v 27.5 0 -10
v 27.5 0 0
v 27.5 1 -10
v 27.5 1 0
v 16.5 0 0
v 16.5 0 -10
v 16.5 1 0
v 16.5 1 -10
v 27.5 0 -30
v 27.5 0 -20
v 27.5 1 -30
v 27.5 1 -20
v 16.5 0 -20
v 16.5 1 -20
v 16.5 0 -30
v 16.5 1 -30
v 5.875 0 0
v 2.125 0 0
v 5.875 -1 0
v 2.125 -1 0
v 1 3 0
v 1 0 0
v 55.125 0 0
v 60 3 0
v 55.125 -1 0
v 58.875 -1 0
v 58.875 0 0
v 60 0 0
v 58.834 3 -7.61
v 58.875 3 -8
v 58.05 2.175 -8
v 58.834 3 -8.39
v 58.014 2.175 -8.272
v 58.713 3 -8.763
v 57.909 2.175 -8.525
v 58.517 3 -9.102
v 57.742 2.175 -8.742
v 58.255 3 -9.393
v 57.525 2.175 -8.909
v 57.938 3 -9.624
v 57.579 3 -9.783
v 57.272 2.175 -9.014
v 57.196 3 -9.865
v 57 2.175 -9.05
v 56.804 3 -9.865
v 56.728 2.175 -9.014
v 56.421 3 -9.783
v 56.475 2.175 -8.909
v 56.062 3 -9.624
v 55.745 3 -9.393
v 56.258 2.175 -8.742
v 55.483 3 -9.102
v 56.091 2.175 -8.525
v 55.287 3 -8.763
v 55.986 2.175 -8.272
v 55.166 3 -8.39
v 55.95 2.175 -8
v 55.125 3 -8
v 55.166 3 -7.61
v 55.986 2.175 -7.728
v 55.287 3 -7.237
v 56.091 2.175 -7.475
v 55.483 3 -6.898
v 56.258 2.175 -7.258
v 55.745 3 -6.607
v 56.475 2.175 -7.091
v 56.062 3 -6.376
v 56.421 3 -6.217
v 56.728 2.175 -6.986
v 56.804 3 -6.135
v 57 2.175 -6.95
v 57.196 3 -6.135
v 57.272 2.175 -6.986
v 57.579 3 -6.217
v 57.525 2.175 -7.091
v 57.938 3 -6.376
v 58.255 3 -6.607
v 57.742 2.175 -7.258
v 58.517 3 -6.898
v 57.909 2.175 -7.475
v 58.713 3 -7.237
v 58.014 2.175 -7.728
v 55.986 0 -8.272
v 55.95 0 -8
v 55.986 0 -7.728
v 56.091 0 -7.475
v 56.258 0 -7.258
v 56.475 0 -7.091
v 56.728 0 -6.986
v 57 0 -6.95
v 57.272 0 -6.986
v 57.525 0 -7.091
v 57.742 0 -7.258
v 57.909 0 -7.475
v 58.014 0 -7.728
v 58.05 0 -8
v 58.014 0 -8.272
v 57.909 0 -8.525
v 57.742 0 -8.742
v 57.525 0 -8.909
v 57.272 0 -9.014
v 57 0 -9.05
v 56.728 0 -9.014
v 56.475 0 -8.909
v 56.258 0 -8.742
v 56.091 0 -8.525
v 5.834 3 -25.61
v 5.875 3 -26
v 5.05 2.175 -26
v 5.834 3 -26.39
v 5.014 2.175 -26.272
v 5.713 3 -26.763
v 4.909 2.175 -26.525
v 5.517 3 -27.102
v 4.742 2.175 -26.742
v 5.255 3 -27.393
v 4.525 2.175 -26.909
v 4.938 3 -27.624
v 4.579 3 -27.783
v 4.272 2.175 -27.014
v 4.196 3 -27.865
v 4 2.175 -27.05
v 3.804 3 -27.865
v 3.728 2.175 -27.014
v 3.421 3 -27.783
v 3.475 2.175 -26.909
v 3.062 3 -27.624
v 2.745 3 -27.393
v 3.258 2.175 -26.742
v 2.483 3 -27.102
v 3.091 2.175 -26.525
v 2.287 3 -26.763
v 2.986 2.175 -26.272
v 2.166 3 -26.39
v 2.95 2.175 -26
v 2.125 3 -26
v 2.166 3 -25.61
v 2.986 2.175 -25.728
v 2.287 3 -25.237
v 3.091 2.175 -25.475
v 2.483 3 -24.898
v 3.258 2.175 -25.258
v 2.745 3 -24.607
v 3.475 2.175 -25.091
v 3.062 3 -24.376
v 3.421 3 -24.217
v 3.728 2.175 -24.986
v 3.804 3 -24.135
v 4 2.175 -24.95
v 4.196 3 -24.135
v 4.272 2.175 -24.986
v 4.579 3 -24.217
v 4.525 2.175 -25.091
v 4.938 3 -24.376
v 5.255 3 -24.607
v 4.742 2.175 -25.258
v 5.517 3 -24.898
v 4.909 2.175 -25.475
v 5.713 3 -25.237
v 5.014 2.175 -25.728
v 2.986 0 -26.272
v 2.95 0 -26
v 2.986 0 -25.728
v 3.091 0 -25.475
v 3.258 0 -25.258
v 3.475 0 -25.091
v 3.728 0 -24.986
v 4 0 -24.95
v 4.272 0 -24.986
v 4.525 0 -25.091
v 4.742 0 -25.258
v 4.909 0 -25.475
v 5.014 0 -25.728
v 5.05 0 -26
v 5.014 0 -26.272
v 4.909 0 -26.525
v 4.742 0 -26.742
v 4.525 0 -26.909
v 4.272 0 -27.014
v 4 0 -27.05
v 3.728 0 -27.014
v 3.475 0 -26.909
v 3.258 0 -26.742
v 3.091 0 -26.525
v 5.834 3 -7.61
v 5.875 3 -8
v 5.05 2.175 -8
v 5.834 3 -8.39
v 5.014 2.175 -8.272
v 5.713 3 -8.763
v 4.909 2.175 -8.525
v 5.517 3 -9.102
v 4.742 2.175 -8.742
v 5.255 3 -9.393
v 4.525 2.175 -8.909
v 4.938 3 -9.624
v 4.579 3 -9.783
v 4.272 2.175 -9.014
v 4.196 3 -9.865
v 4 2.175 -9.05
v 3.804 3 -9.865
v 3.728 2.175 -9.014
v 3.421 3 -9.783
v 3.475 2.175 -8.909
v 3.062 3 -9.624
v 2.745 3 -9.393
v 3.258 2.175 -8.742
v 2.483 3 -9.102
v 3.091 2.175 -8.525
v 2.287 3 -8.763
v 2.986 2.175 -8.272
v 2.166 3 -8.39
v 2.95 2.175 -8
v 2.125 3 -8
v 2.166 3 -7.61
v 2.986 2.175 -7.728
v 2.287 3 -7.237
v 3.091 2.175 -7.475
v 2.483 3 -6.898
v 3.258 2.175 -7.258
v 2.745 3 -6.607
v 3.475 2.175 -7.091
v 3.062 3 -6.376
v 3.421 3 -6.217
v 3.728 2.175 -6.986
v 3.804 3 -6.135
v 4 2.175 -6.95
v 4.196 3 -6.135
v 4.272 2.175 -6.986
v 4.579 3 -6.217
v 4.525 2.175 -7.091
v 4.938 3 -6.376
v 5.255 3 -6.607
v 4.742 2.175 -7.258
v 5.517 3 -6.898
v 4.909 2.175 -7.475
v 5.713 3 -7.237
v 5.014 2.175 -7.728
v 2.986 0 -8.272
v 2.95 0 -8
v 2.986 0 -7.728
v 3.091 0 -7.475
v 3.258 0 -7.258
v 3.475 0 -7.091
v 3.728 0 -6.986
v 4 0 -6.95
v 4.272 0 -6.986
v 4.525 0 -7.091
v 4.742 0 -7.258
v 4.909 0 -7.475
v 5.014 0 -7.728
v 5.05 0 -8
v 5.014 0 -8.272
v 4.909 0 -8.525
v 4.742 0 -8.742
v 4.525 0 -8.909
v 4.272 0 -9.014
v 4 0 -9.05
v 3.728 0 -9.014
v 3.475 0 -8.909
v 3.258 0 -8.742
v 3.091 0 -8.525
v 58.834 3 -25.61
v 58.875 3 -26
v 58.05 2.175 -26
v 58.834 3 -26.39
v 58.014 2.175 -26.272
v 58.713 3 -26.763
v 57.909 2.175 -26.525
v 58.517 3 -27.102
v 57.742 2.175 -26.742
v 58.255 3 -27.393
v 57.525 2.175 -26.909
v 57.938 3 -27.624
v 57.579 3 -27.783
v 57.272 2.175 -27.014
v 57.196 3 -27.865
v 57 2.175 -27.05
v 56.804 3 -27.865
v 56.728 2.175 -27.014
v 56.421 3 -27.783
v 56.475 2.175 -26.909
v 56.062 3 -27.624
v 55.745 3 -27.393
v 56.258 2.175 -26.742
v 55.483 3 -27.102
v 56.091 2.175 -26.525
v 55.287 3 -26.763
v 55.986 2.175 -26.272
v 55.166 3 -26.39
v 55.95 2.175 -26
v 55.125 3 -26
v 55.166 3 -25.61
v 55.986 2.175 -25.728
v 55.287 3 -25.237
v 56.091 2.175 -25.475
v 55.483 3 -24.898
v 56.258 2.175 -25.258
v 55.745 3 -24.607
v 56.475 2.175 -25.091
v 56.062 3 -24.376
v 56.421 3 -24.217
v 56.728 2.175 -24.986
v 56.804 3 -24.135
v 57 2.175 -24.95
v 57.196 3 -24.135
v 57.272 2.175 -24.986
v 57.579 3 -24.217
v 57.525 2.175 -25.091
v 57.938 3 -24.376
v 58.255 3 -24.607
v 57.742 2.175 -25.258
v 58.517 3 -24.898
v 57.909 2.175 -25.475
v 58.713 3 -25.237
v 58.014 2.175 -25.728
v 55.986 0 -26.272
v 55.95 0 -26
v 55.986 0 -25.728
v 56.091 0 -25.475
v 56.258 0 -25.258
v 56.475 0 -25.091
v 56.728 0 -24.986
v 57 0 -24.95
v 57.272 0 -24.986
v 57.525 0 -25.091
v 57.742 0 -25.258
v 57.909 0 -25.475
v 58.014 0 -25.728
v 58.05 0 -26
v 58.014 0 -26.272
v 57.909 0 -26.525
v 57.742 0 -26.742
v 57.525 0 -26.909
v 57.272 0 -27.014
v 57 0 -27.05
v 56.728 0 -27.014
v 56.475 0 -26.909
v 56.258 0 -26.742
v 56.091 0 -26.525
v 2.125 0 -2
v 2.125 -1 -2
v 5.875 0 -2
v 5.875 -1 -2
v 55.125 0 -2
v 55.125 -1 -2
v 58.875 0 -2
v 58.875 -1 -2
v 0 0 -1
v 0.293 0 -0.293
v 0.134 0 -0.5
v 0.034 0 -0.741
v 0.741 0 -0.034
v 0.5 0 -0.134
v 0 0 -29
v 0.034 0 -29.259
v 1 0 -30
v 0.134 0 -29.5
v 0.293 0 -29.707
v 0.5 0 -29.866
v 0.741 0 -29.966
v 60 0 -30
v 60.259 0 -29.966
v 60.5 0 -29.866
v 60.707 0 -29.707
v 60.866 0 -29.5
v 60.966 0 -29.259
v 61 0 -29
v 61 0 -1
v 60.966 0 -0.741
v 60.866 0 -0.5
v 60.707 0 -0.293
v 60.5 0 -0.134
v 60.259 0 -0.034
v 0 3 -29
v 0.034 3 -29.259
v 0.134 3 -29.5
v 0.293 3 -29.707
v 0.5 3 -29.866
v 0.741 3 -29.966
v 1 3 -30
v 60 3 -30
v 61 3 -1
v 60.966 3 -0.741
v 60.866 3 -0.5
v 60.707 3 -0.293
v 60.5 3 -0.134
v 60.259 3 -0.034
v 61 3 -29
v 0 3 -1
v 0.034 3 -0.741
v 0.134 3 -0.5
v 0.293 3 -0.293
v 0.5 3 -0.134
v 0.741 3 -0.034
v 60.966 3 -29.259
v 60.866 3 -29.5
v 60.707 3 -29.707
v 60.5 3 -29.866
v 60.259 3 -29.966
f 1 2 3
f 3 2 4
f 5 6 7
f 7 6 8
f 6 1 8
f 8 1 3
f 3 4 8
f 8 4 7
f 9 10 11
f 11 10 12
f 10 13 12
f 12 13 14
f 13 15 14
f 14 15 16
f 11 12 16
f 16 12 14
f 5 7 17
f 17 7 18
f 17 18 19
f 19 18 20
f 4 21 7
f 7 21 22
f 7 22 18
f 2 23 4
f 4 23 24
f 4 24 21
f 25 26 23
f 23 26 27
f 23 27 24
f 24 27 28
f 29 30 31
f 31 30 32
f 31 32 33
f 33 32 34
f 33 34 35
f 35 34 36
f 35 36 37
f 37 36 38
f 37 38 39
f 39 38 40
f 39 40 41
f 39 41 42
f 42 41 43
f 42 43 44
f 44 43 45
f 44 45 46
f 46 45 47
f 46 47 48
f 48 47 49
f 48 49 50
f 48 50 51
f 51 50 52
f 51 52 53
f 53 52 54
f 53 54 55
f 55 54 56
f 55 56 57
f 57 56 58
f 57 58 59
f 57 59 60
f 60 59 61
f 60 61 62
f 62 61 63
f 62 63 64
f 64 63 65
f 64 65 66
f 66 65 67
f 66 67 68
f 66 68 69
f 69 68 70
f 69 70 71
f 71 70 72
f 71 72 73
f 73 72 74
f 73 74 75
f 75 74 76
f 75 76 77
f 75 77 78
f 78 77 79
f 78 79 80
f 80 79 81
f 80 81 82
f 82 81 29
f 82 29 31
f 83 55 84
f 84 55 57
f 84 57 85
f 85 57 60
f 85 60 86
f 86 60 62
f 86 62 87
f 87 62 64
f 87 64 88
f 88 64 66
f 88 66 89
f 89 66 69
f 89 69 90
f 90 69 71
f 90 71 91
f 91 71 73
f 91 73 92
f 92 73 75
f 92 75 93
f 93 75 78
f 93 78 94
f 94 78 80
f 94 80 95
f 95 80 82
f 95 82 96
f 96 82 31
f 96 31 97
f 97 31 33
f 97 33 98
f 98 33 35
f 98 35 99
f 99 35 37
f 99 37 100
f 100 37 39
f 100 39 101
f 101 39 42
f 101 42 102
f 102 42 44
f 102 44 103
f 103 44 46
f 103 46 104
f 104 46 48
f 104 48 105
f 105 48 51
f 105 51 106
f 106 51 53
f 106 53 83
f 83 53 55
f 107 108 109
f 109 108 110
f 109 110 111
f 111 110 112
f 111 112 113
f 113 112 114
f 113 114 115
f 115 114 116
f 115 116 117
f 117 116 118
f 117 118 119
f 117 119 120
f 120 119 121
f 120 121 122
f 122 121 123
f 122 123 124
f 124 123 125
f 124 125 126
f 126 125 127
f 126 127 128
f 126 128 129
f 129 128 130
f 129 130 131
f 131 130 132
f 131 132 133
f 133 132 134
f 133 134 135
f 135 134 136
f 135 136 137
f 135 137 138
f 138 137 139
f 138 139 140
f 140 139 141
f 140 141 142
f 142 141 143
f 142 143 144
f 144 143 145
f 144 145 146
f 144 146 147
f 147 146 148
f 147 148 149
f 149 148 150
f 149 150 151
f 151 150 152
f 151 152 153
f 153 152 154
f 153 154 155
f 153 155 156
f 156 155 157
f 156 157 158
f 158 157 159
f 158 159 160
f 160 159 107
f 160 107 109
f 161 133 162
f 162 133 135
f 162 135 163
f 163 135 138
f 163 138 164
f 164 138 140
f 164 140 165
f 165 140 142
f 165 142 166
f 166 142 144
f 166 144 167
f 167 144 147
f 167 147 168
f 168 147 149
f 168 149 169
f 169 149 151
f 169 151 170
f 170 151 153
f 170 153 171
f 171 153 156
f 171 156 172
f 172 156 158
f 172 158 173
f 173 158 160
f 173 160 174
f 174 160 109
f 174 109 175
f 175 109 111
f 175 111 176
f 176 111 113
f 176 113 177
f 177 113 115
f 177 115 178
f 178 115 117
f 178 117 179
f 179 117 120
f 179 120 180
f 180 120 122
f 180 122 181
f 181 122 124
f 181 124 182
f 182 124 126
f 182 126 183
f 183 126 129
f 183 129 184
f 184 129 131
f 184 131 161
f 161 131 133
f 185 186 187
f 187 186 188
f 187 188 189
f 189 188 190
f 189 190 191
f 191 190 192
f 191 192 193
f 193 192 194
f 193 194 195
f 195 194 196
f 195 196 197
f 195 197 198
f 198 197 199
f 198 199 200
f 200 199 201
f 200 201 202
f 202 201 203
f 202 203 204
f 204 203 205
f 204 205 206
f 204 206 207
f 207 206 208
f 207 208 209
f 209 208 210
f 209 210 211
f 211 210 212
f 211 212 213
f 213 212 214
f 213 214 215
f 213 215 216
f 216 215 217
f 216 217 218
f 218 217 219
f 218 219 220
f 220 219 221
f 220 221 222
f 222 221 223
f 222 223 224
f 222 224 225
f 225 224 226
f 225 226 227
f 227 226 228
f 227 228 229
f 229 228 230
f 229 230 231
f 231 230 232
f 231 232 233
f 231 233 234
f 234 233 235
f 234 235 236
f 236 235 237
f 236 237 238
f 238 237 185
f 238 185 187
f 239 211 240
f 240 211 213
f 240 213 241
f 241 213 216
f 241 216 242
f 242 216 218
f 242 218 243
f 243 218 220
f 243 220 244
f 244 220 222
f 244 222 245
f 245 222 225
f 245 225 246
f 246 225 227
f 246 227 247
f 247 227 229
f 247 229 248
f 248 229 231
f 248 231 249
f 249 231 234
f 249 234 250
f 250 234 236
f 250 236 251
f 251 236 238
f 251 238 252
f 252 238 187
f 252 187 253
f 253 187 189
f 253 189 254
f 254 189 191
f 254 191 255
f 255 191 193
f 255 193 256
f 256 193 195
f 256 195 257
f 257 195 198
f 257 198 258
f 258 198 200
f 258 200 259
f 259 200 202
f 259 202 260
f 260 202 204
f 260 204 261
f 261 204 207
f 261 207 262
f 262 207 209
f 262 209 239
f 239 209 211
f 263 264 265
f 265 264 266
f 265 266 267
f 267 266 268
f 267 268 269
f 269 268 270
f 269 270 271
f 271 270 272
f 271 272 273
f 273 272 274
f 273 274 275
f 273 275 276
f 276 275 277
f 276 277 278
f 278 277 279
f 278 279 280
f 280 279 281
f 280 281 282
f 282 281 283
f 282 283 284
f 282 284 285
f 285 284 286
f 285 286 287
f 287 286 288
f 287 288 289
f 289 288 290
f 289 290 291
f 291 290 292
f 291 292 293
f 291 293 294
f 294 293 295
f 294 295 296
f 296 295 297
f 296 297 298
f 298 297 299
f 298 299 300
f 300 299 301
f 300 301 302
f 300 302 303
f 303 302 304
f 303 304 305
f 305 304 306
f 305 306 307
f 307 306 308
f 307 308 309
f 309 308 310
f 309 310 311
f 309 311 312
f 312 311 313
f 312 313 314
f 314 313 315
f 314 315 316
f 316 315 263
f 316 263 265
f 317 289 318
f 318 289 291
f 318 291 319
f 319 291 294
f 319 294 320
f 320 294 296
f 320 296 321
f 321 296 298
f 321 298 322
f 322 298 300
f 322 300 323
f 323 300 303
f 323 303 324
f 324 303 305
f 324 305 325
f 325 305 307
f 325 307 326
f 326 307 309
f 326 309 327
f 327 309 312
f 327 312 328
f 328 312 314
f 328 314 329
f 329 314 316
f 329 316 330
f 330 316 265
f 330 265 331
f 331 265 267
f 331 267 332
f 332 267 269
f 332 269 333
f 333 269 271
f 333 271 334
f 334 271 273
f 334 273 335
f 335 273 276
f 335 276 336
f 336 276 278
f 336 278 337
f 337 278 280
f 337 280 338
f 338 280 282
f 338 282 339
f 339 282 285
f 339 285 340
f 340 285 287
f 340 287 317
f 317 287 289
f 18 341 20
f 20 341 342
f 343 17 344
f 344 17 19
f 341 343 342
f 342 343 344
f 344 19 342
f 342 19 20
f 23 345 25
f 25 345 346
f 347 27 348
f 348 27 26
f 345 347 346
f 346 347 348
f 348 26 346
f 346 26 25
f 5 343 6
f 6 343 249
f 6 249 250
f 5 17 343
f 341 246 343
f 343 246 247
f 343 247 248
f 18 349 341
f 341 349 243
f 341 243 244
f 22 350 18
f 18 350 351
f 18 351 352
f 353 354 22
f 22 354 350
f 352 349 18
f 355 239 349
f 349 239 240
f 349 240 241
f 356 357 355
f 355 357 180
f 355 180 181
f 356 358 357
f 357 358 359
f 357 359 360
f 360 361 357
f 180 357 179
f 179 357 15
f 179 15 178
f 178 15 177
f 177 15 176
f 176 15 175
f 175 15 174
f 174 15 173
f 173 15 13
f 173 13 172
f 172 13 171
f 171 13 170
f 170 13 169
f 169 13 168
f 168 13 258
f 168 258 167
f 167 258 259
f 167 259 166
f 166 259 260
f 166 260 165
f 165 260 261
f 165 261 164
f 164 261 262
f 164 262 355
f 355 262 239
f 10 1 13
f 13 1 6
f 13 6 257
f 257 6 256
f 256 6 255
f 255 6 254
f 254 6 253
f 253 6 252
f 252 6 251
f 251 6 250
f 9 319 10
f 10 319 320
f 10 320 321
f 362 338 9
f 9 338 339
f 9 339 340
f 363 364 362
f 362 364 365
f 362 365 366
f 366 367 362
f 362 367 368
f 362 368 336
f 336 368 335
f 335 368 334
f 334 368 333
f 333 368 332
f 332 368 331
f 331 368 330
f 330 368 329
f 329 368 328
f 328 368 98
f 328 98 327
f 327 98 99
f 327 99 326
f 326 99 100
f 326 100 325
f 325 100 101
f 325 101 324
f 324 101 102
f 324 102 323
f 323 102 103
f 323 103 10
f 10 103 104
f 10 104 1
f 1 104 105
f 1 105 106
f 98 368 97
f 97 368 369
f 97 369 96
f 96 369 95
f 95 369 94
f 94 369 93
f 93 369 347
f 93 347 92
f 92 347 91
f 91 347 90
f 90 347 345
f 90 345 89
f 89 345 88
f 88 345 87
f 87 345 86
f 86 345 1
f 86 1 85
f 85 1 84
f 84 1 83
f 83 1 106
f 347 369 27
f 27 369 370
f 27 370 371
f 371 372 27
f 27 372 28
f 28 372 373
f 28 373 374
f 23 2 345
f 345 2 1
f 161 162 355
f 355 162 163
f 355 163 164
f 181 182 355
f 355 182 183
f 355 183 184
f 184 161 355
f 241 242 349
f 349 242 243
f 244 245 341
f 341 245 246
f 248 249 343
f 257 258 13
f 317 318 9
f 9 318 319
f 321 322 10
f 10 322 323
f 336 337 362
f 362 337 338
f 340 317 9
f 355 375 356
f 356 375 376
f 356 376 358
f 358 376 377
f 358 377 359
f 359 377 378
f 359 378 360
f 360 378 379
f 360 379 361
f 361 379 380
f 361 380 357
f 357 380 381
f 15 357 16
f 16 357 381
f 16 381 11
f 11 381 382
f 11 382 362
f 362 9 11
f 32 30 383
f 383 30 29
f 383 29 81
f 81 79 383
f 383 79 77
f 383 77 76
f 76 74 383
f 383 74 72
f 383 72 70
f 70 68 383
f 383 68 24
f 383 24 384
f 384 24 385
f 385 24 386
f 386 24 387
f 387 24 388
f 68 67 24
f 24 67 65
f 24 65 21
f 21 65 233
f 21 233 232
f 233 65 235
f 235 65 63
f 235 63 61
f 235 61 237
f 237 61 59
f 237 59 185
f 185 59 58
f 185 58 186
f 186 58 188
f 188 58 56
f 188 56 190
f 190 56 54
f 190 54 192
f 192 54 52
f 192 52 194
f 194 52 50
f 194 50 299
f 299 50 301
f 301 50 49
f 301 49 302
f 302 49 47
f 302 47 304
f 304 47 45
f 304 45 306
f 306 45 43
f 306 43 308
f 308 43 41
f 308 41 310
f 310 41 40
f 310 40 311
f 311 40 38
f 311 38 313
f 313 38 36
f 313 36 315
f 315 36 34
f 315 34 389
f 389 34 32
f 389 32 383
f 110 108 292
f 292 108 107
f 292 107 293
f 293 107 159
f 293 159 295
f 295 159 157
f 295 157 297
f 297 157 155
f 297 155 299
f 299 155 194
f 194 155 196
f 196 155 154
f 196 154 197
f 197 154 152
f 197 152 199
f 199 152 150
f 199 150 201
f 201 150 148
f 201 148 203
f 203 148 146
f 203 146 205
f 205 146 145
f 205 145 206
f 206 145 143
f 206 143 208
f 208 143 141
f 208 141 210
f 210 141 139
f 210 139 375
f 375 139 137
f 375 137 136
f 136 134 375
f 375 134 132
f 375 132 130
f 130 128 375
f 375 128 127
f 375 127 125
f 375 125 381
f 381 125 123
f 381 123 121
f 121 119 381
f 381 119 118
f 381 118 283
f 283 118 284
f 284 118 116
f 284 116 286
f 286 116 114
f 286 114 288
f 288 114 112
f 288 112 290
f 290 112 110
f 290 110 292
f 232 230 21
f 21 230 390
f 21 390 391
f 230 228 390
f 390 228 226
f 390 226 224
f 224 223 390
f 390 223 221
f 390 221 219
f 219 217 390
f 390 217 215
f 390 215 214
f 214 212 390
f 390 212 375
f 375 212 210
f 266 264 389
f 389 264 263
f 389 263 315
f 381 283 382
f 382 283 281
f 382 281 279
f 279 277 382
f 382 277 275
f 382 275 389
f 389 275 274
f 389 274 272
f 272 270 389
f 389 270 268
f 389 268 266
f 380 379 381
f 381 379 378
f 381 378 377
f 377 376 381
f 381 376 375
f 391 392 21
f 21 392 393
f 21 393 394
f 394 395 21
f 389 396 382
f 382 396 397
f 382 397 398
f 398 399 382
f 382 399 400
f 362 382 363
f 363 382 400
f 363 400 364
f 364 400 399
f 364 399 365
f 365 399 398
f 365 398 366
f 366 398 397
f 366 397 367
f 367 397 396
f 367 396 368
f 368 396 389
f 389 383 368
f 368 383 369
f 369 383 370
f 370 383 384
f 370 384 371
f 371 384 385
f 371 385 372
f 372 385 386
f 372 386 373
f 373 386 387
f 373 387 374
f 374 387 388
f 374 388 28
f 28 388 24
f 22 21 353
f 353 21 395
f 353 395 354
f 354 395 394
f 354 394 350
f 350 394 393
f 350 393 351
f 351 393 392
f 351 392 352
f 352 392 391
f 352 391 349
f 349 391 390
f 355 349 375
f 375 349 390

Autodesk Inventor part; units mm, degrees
ref_plane "YZ Plane" through (0, 0, 0) normal (1, 0, 0) x (0, 1, 0)
ref_plane "XZ Plane" through (0, 0, 0) normal (0, 1, 0) x (-1, 0, 0)
ref_plane "XY Plane" through (0, 0, 0) normal (0, 0, 1) x (1, 0, 0)
sketch "Sketch1" plane through (0, 0, 0) normal (0, 1, 0) x (-1, 0, 0)
  line L0 (0, 0) -> (-61, 0)
  line L1 (-61, 0) -> (-61, -30)
  line L2 (-61, -30) -> (0, -30)
  line L3 (0, -30) -> (0, 0)
  dimension "d0" = 30
  dimension "d1" = 61
extrude "Extrusion1" add sketch "Sketch1" along normal blind 3
fillet "Fillet1" radius 1 4 edges at (0, 1.5, 0) (61, 1.5, 0) (61, 1.5, -30) (0, 1.5, -30)
sketch "Sketch4" plane through (0, 0, 0) normal (0, -1, 0) x (1, 0, 0)
  line L0 (2.125, -2) -> (5.875, -2)
  line L1 (5.875, -2) -> (5.875, 0)
  line L2 (5.875, 0) -> (2.125, 0)
  line L3 (2.125, 0) -> (2.125, -2)
  line L4 (55.125, -2) -> (58.875, -2)
  line L5 (58.875, -2) -> (58.875, 0)
  line L6 (58.875, 0) -> (55.125, 0)
  line L7 (55.125, 0) -> (55.125, -2)
  line L8 (0, -29) -> (0, -1) projected
  line L9 (1, 0) -> (60, 0) projected
  line L10 (61, -1) -> (61, -29) projected
  point P0 (0, 0)
  dimension "d31" = 3.75
  dimension "d32" = 3.75
  dimension "d33" = 2
  dimension "d34" = 2
  dimension "d35" = 5.875
  dimension "d36" = 0
  dimension "d37" = 0
  dimension "d38" = 5.875
extrude "Extrusion3" add sketch "Sketch4" along normal blind 1
sketch "Sketch2" plane through (0, 3, 0) normal (0, 1, 0) x (1, 0, 0)
  circle A0 centre (4, 8) radius 1
  line L0 (0, 0) -> (61, 0) projected
  line L1 (0, 30) -> (0, 0) projected
  circle A1 centre (57, 8) radius 1
  line L2 (61, 0) -> (61, 30) projected
  circle A2 centre (4, 26) radius 1
  circle A3 centre (57, 26) radius 1
  line L3 (61, 30) -> (0, 30) projected
  dimension "d4" = 8
  dimension "d5" = 4
  dimension "d6" = 2
  dimension "d7" = 2
  dimension "d8" = 4
  dimension "d9" = 8
  dimension "d10" = 2
  dimension "d11" = 2
  dimension "d12" = 4
  dimension "d13" = 4
  dimension "d14" = 4
  dimension "d15" = 4
hole "Hole1" at (4, 3, -26) at (4, 3, -8) at (57, 3, -8) at (57, 3, -26) direction (0, -1, 0) diameter 2.1 end through all countersink diameter 3.75 countersink angle 90
sketch "Sketch6" plane through (0, 0, 0) normal (0, -1, 0) x (1, 0, 0)
  line L0 (16.5, -10) -> (27.5, -10)
  line L1 (27.5, -10) -> (27.5, 0)
  line L2 (27.5, 0) -> (16.5, 0)
  line L3 (16.5, 0) -> (16.5, -10)
  line L4 (1, 0) -> (60, 0) projected
  line L5 (0, -29) -> (0, -1) projected
  line L6 (16.5, -30) -> (27.5, -30)
  line L7 (27.5, -30) -> (27.5, -20)
  line L8 (27.5, -20) -> (16.5, -20)
  line L9 (16.5, -20) -> (16.5, -30)
  line L10 (60, -30) -> (1, -30) projected
  point P0 (0, 0)
  dimension "d48" = 16.5
  dimension "d49" = 11
  dimension "d50" = 10
  dimension "d51" = 0
  dimension "d52" = 10
  dimension "d53" = 16.5
  dimension "d55" = 11
  dimension "d56" = 0
extrude "Extrusion4" cut sketch "Sketch6" against normal blind 1
equation "\"d52\" = d50"
equation "\"d53\" = d48"
properties part number "Link Adapter Top"
